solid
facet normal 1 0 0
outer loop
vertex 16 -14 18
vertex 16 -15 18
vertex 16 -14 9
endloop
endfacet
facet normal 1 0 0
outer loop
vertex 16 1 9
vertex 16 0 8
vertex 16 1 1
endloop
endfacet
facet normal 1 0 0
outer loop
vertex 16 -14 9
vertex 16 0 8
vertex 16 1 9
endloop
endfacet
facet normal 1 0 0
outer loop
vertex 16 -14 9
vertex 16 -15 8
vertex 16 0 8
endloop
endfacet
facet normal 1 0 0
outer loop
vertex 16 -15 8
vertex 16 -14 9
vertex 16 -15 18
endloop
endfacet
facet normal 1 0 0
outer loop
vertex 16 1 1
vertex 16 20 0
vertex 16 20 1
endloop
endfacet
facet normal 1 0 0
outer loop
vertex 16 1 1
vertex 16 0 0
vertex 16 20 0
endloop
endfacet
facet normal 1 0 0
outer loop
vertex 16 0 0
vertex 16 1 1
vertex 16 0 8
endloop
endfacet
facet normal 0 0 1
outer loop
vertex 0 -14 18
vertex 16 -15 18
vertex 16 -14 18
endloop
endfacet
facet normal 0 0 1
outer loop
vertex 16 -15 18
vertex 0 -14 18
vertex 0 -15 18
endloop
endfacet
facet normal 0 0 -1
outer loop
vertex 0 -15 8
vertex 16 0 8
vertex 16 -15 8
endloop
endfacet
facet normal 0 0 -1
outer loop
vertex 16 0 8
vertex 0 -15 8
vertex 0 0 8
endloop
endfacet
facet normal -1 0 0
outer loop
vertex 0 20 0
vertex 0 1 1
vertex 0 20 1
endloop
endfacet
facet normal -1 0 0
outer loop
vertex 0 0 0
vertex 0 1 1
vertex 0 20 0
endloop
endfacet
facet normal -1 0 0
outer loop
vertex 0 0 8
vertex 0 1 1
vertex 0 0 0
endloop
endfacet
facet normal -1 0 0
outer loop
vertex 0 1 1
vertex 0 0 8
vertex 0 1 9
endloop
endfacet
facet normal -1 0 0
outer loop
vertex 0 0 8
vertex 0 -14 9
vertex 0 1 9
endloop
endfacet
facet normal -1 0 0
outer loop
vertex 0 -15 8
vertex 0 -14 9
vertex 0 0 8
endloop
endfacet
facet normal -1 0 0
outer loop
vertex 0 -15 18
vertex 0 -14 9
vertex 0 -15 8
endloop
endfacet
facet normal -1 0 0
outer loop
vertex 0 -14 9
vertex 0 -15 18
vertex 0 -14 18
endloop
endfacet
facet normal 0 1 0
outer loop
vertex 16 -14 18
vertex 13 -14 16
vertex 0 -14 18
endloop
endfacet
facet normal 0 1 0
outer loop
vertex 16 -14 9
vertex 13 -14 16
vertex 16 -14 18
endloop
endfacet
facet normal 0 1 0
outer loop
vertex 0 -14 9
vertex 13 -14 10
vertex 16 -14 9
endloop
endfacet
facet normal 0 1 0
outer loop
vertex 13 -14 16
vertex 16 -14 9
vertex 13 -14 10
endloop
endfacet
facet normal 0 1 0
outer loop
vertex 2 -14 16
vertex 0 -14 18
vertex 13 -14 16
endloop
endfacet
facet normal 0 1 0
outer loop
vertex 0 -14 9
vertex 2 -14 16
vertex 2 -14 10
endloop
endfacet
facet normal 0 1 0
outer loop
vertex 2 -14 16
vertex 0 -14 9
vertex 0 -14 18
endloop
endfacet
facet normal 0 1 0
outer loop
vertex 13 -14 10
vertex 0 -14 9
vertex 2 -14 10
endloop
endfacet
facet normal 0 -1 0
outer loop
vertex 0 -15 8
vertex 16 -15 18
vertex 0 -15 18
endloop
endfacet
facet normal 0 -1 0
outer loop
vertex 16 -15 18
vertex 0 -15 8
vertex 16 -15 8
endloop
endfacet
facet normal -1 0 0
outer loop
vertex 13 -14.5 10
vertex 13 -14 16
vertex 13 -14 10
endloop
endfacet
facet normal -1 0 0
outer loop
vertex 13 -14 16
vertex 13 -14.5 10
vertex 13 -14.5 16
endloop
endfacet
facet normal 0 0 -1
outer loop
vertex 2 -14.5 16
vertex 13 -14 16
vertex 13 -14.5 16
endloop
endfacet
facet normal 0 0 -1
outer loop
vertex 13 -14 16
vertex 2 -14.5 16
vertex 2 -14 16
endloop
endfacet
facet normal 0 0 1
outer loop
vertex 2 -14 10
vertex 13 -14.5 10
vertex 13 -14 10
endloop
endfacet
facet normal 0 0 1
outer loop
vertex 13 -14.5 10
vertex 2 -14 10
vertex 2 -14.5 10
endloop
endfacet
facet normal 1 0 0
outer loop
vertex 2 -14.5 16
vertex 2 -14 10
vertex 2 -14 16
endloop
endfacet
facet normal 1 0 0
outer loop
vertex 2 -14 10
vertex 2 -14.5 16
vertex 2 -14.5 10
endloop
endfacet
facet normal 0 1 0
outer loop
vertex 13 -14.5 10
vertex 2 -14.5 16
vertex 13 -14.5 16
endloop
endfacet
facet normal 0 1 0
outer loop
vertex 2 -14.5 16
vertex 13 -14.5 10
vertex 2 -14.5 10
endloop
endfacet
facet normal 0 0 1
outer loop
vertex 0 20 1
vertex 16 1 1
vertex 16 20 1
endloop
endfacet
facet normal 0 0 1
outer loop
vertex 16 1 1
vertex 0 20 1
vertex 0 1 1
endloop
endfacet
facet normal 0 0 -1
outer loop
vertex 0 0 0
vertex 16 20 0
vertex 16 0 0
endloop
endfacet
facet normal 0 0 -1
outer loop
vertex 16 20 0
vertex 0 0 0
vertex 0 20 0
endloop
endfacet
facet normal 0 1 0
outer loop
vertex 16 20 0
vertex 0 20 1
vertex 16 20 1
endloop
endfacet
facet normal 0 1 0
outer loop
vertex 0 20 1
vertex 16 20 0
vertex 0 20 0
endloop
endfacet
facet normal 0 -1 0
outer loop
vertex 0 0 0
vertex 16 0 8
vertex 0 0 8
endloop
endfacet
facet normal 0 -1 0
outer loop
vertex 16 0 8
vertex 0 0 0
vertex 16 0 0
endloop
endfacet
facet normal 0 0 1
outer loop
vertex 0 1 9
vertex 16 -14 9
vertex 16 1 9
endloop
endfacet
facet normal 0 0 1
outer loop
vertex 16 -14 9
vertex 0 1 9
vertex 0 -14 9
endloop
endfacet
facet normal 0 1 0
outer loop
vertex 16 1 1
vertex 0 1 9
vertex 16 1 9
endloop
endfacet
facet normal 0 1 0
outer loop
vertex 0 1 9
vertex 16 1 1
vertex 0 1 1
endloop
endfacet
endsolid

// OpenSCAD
length = 16;
width = 20;
base_thickness = 1;

magnet_height_over_base = 22;
magnet_offset_from_center = 25;


magnet_length = 11;
magnet_width = 6;
magnet_hole_depth = 0.5;
magnet_hole_distance_to_wall = 2;

spacer_height = magnet_height_over_base - base_thickness - magnet_height_over_base / 2 - magnet_hole_distance_to_wall;

horizontal_spacer_width = magnet_offset_from_center - width / 2 - base_thickness;

magnet_holder_width = magnet_width + 2 * magnet_hole_distance_to_wall;




// base plate
cube([length, width, base_thickness]);
// vertical spacer
translate([0, 0, base_thickness])
    cube([length, base_thickness, spacer_height]);
// horizontal spacer
translate([0, -horizontal_spacer_width, spacer_height])
    cube([length, horizontal_spacer_width, base_thickness]);
// magnet plate
translate([0, -horizontal_spacer_width - base_thickness, spacer_height])
    difference() {
        cube([length, base_thickness, magnet_holder_width]);
        translate([magnet_hole_distance_to_wall, magnet_hole_depth, magnet_hole_distance_to_wall])
            cube([magnet_length, 2 * magnet_hole_depth, magnet_width]);
    }
